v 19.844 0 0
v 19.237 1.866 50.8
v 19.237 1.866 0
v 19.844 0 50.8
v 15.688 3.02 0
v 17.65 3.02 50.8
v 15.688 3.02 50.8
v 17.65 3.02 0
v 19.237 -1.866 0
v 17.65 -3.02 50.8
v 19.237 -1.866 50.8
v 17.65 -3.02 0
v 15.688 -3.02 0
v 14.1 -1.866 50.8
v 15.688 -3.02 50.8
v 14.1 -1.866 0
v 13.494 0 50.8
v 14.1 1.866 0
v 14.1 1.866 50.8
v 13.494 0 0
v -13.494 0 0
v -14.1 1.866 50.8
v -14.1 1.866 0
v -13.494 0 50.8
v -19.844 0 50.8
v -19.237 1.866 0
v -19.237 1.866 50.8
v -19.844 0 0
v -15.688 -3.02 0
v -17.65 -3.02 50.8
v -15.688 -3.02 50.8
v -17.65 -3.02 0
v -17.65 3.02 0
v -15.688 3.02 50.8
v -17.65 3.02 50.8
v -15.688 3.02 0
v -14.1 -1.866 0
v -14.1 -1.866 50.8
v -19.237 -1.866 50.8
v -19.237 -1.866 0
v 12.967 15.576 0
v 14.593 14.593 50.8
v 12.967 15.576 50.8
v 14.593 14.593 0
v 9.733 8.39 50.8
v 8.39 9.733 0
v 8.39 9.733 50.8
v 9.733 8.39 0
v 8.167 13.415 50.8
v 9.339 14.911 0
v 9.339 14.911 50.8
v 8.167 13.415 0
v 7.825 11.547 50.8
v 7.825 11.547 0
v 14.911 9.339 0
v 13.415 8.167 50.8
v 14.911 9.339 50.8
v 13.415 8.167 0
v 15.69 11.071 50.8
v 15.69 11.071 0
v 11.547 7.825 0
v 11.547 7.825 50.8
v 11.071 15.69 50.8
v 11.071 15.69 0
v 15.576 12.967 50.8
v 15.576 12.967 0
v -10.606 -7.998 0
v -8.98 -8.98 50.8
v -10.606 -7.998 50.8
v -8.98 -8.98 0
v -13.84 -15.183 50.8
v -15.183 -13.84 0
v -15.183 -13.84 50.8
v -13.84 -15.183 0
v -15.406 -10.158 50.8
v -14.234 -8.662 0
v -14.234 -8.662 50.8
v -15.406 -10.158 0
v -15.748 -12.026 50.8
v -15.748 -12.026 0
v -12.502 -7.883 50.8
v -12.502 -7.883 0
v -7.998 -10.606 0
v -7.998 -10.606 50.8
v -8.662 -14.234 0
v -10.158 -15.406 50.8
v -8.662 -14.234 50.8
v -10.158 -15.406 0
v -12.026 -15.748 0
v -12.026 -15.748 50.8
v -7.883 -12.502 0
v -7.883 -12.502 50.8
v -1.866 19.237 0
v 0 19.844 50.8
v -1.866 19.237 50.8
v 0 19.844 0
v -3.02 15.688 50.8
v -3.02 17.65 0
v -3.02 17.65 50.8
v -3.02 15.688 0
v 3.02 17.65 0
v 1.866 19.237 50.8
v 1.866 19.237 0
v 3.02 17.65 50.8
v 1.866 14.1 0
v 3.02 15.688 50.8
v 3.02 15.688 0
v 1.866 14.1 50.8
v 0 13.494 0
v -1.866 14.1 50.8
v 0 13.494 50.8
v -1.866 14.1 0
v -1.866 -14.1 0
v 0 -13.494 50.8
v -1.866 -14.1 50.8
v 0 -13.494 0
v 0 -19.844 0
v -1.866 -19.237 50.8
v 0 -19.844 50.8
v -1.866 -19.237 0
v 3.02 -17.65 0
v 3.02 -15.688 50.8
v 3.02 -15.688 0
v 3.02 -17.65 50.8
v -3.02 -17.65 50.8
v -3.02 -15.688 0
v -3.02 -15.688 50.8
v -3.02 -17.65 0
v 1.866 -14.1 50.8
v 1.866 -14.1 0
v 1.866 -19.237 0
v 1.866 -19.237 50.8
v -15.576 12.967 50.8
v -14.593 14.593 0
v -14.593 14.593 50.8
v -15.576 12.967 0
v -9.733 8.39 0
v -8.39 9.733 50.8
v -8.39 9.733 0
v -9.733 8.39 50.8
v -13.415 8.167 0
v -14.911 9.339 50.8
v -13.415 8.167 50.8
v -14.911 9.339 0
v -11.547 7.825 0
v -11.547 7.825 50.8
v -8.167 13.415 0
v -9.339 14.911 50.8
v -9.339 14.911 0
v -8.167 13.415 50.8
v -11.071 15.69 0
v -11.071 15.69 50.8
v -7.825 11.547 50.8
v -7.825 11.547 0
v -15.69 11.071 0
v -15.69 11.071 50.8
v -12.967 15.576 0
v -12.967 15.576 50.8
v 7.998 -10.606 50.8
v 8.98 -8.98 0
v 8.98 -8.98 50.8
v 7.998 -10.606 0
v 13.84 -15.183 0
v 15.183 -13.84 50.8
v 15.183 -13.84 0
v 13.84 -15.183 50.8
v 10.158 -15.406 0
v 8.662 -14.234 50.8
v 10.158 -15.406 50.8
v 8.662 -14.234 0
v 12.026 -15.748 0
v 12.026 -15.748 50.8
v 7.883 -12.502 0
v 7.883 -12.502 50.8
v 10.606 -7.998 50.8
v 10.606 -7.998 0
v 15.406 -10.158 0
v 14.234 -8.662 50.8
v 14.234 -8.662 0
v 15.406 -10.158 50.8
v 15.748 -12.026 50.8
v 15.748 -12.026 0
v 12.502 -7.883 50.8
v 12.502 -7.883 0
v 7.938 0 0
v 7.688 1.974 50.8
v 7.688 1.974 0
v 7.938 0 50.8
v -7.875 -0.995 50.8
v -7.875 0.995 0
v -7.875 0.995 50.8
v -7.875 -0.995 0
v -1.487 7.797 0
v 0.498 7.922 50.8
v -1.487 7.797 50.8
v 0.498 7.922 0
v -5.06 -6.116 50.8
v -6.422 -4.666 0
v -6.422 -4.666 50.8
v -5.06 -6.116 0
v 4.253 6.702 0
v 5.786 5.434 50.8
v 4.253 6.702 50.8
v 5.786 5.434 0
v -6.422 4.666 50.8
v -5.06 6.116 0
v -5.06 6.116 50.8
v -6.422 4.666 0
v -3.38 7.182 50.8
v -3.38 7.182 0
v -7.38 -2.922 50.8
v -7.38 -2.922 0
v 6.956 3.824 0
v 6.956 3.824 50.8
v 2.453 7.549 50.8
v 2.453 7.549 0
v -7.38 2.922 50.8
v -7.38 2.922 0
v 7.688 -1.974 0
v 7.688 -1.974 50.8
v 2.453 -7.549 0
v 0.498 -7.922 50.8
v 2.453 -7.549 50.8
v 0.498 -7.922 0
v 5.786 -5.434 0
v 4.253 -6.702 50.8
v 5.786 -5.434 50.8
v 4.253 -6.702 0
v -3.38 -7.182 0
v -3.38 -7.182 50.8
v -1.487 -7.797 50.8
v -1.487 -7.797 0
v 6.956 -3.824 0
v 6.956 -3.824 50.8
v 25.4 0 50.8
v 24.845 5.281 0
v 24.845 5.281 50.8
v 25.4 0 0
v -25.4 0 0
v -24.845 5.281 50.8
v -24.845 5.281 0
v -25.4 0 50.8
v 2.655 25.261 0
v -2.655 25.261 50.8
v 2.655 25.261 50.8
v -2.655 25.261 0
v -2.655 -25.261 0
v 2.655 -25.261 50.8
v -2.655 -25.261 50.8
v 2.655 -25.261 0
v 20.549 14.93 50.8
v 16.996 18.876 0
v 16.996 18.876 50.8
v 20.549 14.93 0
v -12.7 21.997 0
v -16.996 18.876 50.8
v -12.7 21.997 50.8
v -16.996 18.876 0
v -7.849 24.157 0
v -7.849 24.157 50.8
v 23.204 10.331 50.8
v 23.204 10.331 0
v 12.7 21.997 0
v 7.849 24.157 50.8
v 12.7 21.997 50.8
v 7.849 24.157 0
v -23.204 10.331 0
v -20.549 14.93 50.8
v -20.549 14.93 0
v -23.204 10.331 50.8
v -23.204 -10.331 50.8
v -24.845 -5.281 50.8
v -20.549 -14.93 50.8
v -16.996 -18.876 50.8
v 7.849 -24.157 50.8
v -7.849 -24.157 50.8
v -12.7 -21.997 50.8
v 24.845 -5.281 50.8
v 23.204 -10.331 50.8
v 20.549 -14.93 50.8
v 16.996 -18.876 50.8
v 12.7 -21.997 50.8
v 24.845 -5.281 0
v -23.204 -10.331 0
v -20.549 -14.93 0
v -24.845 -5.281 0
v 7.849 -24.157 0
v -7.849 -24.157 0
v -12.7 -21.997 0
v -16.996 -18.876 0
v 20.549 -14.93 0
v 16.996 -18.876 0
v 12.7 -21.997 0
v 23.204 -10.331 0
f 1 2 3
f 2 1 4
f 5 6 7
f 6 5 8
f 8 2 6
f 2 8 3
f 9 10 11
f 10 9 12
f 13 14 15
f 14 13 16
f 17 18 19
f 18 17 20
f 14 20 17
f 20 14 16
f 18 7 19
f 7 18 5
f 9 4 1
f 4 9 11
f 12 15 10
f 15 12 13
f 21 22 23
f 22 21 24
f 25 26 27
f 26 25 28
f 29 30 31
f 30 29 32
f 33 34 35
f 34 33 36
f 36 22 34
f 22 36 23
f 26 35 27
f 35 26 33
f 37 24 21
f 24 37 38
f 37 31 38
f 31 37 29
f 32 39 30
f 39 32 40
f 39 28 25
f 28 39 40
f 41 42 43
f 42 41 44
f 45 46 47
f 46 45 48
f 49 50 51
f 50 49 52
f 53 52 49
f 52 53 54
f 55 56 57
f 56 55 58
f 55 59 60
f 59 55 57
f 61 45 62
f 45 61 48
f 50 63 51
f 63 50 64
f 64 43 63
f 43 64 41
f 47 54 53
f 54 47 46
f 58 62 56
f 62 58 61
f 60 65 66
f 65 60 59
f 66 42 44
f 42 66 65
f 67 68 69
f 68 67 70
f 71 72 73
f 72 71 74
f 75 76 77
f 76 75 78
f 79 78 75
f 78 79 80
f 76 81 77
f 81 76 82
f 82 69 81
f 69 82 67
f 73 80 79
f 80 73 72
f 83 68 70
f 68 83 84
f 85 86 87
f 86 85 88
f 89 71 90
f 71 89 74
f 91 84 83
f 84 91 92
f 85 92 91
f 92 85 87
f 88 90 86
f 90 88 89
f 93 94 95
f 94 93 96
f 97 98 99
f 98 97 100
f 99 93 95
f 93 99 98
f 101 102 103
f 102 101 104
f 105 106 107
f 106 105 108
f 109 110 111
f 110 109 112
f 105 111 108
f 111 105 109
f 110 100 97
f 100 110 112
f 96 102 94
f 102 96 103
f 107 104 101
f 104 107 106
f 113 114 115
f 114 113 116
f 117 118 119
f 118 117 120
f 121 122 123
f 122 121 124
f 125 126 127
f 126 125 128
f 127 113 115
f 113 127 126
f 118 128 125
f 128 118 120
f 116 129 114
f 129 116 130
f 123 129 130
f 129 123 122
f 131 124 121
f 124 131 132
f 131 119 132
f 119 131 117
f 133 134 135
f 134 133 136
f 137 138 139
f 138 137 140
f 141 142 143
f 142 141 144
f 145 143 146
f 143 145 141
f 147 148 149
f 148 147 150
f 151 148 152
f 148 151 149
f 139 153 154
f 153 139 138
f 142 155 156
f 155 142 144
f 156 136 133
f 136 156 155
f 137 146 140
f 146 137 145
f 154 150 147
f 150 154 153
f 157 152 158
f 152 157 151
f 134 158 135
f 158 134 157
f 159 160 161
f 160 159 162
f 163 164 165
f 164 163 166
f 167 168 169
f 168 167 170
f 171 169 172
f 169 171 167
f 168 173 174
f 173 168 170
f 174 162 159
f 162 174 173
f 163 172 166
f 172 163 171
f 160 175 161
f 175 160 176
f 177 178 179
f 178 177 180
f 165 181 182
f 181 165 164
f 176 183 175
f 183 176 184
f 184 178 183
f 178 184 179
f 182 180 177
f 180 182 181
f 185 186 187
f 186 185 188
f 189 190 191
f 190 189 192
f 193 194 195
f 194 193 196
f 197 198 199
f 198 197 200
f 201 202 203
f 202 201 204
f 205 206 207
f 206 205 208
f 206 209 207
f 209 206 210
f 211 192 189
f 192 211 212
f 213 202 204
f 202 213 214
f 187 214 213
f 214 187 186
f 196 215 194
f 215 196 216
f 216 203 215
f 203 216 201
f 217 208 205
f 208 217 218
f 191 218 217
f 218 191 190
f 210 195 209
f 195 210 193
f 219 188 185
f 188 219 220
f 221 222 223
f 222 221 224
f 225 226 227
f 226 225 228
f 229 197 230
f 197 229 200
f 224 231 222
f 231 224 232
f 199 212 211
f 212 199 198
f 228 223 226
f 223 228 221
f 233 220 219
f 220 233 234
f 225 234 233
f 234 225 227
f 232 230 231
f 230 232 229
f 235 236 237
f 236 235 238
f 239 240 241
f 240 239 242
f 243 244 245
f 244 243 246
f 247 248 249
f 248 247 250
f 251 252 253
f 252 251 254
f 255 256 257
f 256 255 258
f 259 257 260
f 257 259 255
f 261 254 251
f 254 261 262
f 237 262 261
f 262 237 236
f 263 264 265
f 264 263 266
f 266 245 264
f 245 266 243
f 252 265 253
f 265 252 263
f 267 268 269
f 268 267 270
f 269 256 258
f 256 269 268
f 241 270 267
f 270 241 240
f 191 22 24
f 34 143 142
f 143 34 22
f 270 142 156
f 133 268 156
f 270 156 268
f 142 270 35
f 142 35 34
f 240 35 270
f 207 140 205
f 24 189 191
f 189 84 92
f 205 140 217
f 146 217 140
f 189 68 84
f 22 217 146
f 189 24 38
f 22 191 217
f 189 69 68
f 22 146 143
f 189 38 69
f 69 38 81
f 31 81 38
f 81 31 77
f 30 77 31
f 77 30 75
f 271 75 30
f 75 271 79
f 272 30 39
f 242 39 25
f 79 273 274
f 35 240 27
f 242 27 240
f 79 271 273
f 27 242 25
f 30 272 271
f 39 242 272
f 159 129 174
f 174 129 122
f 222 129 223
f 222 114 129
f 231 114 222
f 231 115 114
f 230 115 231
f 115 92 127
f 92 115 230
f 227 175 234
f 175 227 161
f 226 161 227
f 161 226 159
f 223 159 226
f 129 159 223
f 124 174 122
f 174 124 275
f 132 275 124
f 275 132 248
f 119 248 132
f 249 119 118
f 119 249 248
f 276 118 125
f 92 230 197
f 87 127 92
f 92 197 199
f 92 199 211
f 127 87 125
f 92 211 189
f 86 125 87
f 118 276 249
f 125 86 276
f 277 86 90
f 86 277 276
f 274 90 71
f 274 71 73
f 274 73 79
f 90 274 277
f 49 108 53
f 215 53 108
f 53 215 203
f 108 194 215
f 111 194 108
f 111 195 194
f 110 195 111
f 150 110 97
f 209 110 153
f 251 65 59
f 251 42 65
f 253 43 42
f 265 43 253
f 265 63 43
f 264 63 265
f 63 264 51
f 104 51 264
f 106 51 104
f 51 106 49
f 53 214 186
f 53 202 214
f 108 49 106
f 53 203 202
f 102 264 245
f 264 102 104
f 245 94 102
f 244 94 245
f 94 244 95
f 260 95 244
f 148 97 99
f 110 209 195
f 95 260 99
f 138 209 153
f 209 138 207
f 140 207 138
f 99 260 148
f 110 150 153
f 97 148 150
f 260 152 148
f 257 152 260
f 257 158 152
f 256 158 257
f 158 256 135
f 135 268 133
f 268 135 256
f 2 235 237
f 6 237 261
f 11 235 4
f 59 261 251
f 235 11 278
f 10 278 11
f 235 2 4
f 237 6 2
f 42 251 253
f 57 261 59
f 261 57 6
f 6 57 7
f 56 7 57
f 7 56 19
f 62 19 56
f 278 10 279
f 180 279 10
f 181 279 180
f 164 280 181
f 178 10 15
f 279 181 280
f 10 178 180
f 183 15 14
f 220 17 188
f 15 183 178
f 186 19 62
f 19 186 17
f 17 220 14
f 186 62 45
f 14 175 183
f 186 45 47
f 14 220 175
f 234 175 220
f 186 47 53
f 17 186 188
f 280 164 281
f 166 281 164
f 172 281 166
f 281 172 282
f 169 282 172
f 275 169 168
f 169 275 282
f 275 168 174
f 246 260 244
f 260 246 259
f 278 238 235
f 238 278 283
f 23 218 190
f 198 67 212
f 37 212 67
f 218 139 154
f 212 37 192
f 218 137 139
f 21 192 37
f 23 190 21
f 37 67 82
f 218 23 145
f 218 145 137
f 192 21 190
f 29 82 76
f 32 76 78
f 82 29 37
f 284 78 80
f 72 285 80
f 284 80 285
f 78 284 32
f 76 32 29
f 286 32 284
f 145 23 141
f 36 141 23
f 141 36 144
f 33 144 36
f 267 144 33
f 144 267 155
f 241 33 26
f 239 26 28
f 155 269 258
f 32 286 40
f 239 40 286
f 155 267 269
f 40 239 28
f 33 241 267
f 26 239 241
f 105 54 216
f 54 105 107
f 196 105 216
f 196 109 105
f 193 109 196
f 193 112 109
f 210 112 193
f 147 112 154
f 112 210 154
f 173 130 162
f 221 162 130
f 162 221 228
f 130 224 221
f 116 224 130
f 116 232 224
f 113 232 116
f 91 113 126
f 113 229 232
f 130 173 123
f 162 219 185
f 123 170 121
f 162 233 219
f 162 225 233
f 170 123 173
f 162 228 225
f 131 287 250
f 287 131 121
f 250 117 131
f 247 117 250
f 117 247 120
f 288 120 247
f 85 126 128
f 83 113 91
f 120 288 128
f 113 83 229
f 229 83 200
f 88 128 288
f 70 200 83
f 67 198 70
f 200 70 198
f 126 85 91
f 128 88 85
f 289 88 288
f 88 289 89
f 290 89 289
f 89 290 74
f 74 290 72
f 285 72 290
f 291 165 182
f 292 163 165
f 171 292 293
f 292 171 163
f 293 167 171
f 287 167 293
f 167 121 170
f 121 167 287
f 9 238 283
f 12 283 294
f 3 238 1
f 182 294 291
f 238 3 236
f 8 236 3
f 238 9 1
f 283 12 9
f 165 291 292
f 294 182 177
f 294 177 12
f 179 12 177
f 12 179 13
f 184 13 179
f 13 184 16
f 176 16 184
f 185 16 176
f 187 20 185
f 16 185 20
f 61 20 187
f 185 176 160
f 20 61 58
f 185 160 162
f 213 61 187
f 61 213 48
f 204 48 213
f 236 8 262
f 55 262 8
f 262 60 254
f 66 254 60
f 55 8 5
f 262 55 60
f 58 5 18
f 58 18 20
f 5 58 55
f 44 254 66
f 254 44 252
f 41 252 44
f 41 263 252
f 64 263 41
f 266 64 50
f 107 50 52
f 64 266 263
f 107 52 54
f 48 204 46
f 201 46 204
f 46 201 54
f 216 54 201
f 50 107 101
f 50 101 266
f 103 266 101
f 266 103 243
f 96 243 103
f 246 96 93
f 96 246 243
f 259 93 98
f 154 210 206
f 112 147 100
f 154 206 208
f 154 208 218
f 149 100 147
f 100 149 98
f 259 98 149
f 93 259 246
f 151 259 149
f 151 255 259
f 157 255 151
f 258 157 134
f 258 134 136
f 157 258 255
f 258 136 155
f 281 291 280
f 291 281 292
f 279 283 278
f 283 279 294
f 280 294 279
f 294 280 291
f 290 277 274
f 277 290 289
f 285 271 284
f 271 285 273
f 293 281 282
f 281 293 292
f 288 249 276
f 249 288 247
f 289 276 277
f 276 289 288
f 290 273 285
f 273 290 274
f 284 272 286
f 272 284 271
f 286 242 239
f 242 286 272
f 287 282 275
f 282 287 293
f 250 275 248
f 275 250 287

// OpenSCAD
//
// Creates a spacer for fitting a 2" spool on a 5/8" axle,
// e.g. a standard 10# MIG wire roll.  For making a re-spooler.
// This version uses standard bolt holes (2 sizes at 90 deg cross, shifted
// by 45 deg) to permit attaching a handle.
//
// This work is licensed under the Creative Commons Attribution-ShareAlike 4.0 
// International License. To view a copy of this license, visit 
// http://creativecommons.org/licenses/by-sa/4.0/ or send a letter to 
// Creative Commons, PO Box 1866, Mountain View, CA 94042, USA.
//

// Values specified in inches ...
mmPerInch = 25.4;

// Parameterized values
outerDiam = 2 * mmPerInch;
innerDiam = (5.0 / 8.0) * mmPerInch;
height = 2 * mmPerInch;  // max thickness of spool

// Bolt hole constants.
boltHoleDiamSmaller = 0.25 * mmPerInch;
boltHoleDiamLarger = (5.0 / 16.0) * mmPerInch;
boltHoleDistFromCenter = (outerDiam + innerDiam) / 4.0;


module rimHoleOpposingPairs(holeDiam) 
{
    union() {
        translate([boltHoleDistFromCenter, 0, 0]) {
            cylinder(h = 3*height, d = holeDiam, center = true);
        }
        translate([-boltHoleDistFromCenter, 0, 0]) {
            cylinder(h = 3*height, d = holeDiam, center = true);
        }
    }
}

difference()
{
    cylinder(h = height, d = outerDiam, center = false);
    union() {
        cylinder(h = 3*height, d = innerDiam, center = true);
        rimHoleOpposingPairs(boltHoleDiamSmaller);
        rotate(45)  rimHoleOpposingPairs(boltHoleDiamLarger);
        rotate(90)  rimHoleOpposingPairs(boltHoleDiamSmaller);
        rotate(135) rimHoleOpposingPairs(boltHoleDiamLarger);
    }
}
